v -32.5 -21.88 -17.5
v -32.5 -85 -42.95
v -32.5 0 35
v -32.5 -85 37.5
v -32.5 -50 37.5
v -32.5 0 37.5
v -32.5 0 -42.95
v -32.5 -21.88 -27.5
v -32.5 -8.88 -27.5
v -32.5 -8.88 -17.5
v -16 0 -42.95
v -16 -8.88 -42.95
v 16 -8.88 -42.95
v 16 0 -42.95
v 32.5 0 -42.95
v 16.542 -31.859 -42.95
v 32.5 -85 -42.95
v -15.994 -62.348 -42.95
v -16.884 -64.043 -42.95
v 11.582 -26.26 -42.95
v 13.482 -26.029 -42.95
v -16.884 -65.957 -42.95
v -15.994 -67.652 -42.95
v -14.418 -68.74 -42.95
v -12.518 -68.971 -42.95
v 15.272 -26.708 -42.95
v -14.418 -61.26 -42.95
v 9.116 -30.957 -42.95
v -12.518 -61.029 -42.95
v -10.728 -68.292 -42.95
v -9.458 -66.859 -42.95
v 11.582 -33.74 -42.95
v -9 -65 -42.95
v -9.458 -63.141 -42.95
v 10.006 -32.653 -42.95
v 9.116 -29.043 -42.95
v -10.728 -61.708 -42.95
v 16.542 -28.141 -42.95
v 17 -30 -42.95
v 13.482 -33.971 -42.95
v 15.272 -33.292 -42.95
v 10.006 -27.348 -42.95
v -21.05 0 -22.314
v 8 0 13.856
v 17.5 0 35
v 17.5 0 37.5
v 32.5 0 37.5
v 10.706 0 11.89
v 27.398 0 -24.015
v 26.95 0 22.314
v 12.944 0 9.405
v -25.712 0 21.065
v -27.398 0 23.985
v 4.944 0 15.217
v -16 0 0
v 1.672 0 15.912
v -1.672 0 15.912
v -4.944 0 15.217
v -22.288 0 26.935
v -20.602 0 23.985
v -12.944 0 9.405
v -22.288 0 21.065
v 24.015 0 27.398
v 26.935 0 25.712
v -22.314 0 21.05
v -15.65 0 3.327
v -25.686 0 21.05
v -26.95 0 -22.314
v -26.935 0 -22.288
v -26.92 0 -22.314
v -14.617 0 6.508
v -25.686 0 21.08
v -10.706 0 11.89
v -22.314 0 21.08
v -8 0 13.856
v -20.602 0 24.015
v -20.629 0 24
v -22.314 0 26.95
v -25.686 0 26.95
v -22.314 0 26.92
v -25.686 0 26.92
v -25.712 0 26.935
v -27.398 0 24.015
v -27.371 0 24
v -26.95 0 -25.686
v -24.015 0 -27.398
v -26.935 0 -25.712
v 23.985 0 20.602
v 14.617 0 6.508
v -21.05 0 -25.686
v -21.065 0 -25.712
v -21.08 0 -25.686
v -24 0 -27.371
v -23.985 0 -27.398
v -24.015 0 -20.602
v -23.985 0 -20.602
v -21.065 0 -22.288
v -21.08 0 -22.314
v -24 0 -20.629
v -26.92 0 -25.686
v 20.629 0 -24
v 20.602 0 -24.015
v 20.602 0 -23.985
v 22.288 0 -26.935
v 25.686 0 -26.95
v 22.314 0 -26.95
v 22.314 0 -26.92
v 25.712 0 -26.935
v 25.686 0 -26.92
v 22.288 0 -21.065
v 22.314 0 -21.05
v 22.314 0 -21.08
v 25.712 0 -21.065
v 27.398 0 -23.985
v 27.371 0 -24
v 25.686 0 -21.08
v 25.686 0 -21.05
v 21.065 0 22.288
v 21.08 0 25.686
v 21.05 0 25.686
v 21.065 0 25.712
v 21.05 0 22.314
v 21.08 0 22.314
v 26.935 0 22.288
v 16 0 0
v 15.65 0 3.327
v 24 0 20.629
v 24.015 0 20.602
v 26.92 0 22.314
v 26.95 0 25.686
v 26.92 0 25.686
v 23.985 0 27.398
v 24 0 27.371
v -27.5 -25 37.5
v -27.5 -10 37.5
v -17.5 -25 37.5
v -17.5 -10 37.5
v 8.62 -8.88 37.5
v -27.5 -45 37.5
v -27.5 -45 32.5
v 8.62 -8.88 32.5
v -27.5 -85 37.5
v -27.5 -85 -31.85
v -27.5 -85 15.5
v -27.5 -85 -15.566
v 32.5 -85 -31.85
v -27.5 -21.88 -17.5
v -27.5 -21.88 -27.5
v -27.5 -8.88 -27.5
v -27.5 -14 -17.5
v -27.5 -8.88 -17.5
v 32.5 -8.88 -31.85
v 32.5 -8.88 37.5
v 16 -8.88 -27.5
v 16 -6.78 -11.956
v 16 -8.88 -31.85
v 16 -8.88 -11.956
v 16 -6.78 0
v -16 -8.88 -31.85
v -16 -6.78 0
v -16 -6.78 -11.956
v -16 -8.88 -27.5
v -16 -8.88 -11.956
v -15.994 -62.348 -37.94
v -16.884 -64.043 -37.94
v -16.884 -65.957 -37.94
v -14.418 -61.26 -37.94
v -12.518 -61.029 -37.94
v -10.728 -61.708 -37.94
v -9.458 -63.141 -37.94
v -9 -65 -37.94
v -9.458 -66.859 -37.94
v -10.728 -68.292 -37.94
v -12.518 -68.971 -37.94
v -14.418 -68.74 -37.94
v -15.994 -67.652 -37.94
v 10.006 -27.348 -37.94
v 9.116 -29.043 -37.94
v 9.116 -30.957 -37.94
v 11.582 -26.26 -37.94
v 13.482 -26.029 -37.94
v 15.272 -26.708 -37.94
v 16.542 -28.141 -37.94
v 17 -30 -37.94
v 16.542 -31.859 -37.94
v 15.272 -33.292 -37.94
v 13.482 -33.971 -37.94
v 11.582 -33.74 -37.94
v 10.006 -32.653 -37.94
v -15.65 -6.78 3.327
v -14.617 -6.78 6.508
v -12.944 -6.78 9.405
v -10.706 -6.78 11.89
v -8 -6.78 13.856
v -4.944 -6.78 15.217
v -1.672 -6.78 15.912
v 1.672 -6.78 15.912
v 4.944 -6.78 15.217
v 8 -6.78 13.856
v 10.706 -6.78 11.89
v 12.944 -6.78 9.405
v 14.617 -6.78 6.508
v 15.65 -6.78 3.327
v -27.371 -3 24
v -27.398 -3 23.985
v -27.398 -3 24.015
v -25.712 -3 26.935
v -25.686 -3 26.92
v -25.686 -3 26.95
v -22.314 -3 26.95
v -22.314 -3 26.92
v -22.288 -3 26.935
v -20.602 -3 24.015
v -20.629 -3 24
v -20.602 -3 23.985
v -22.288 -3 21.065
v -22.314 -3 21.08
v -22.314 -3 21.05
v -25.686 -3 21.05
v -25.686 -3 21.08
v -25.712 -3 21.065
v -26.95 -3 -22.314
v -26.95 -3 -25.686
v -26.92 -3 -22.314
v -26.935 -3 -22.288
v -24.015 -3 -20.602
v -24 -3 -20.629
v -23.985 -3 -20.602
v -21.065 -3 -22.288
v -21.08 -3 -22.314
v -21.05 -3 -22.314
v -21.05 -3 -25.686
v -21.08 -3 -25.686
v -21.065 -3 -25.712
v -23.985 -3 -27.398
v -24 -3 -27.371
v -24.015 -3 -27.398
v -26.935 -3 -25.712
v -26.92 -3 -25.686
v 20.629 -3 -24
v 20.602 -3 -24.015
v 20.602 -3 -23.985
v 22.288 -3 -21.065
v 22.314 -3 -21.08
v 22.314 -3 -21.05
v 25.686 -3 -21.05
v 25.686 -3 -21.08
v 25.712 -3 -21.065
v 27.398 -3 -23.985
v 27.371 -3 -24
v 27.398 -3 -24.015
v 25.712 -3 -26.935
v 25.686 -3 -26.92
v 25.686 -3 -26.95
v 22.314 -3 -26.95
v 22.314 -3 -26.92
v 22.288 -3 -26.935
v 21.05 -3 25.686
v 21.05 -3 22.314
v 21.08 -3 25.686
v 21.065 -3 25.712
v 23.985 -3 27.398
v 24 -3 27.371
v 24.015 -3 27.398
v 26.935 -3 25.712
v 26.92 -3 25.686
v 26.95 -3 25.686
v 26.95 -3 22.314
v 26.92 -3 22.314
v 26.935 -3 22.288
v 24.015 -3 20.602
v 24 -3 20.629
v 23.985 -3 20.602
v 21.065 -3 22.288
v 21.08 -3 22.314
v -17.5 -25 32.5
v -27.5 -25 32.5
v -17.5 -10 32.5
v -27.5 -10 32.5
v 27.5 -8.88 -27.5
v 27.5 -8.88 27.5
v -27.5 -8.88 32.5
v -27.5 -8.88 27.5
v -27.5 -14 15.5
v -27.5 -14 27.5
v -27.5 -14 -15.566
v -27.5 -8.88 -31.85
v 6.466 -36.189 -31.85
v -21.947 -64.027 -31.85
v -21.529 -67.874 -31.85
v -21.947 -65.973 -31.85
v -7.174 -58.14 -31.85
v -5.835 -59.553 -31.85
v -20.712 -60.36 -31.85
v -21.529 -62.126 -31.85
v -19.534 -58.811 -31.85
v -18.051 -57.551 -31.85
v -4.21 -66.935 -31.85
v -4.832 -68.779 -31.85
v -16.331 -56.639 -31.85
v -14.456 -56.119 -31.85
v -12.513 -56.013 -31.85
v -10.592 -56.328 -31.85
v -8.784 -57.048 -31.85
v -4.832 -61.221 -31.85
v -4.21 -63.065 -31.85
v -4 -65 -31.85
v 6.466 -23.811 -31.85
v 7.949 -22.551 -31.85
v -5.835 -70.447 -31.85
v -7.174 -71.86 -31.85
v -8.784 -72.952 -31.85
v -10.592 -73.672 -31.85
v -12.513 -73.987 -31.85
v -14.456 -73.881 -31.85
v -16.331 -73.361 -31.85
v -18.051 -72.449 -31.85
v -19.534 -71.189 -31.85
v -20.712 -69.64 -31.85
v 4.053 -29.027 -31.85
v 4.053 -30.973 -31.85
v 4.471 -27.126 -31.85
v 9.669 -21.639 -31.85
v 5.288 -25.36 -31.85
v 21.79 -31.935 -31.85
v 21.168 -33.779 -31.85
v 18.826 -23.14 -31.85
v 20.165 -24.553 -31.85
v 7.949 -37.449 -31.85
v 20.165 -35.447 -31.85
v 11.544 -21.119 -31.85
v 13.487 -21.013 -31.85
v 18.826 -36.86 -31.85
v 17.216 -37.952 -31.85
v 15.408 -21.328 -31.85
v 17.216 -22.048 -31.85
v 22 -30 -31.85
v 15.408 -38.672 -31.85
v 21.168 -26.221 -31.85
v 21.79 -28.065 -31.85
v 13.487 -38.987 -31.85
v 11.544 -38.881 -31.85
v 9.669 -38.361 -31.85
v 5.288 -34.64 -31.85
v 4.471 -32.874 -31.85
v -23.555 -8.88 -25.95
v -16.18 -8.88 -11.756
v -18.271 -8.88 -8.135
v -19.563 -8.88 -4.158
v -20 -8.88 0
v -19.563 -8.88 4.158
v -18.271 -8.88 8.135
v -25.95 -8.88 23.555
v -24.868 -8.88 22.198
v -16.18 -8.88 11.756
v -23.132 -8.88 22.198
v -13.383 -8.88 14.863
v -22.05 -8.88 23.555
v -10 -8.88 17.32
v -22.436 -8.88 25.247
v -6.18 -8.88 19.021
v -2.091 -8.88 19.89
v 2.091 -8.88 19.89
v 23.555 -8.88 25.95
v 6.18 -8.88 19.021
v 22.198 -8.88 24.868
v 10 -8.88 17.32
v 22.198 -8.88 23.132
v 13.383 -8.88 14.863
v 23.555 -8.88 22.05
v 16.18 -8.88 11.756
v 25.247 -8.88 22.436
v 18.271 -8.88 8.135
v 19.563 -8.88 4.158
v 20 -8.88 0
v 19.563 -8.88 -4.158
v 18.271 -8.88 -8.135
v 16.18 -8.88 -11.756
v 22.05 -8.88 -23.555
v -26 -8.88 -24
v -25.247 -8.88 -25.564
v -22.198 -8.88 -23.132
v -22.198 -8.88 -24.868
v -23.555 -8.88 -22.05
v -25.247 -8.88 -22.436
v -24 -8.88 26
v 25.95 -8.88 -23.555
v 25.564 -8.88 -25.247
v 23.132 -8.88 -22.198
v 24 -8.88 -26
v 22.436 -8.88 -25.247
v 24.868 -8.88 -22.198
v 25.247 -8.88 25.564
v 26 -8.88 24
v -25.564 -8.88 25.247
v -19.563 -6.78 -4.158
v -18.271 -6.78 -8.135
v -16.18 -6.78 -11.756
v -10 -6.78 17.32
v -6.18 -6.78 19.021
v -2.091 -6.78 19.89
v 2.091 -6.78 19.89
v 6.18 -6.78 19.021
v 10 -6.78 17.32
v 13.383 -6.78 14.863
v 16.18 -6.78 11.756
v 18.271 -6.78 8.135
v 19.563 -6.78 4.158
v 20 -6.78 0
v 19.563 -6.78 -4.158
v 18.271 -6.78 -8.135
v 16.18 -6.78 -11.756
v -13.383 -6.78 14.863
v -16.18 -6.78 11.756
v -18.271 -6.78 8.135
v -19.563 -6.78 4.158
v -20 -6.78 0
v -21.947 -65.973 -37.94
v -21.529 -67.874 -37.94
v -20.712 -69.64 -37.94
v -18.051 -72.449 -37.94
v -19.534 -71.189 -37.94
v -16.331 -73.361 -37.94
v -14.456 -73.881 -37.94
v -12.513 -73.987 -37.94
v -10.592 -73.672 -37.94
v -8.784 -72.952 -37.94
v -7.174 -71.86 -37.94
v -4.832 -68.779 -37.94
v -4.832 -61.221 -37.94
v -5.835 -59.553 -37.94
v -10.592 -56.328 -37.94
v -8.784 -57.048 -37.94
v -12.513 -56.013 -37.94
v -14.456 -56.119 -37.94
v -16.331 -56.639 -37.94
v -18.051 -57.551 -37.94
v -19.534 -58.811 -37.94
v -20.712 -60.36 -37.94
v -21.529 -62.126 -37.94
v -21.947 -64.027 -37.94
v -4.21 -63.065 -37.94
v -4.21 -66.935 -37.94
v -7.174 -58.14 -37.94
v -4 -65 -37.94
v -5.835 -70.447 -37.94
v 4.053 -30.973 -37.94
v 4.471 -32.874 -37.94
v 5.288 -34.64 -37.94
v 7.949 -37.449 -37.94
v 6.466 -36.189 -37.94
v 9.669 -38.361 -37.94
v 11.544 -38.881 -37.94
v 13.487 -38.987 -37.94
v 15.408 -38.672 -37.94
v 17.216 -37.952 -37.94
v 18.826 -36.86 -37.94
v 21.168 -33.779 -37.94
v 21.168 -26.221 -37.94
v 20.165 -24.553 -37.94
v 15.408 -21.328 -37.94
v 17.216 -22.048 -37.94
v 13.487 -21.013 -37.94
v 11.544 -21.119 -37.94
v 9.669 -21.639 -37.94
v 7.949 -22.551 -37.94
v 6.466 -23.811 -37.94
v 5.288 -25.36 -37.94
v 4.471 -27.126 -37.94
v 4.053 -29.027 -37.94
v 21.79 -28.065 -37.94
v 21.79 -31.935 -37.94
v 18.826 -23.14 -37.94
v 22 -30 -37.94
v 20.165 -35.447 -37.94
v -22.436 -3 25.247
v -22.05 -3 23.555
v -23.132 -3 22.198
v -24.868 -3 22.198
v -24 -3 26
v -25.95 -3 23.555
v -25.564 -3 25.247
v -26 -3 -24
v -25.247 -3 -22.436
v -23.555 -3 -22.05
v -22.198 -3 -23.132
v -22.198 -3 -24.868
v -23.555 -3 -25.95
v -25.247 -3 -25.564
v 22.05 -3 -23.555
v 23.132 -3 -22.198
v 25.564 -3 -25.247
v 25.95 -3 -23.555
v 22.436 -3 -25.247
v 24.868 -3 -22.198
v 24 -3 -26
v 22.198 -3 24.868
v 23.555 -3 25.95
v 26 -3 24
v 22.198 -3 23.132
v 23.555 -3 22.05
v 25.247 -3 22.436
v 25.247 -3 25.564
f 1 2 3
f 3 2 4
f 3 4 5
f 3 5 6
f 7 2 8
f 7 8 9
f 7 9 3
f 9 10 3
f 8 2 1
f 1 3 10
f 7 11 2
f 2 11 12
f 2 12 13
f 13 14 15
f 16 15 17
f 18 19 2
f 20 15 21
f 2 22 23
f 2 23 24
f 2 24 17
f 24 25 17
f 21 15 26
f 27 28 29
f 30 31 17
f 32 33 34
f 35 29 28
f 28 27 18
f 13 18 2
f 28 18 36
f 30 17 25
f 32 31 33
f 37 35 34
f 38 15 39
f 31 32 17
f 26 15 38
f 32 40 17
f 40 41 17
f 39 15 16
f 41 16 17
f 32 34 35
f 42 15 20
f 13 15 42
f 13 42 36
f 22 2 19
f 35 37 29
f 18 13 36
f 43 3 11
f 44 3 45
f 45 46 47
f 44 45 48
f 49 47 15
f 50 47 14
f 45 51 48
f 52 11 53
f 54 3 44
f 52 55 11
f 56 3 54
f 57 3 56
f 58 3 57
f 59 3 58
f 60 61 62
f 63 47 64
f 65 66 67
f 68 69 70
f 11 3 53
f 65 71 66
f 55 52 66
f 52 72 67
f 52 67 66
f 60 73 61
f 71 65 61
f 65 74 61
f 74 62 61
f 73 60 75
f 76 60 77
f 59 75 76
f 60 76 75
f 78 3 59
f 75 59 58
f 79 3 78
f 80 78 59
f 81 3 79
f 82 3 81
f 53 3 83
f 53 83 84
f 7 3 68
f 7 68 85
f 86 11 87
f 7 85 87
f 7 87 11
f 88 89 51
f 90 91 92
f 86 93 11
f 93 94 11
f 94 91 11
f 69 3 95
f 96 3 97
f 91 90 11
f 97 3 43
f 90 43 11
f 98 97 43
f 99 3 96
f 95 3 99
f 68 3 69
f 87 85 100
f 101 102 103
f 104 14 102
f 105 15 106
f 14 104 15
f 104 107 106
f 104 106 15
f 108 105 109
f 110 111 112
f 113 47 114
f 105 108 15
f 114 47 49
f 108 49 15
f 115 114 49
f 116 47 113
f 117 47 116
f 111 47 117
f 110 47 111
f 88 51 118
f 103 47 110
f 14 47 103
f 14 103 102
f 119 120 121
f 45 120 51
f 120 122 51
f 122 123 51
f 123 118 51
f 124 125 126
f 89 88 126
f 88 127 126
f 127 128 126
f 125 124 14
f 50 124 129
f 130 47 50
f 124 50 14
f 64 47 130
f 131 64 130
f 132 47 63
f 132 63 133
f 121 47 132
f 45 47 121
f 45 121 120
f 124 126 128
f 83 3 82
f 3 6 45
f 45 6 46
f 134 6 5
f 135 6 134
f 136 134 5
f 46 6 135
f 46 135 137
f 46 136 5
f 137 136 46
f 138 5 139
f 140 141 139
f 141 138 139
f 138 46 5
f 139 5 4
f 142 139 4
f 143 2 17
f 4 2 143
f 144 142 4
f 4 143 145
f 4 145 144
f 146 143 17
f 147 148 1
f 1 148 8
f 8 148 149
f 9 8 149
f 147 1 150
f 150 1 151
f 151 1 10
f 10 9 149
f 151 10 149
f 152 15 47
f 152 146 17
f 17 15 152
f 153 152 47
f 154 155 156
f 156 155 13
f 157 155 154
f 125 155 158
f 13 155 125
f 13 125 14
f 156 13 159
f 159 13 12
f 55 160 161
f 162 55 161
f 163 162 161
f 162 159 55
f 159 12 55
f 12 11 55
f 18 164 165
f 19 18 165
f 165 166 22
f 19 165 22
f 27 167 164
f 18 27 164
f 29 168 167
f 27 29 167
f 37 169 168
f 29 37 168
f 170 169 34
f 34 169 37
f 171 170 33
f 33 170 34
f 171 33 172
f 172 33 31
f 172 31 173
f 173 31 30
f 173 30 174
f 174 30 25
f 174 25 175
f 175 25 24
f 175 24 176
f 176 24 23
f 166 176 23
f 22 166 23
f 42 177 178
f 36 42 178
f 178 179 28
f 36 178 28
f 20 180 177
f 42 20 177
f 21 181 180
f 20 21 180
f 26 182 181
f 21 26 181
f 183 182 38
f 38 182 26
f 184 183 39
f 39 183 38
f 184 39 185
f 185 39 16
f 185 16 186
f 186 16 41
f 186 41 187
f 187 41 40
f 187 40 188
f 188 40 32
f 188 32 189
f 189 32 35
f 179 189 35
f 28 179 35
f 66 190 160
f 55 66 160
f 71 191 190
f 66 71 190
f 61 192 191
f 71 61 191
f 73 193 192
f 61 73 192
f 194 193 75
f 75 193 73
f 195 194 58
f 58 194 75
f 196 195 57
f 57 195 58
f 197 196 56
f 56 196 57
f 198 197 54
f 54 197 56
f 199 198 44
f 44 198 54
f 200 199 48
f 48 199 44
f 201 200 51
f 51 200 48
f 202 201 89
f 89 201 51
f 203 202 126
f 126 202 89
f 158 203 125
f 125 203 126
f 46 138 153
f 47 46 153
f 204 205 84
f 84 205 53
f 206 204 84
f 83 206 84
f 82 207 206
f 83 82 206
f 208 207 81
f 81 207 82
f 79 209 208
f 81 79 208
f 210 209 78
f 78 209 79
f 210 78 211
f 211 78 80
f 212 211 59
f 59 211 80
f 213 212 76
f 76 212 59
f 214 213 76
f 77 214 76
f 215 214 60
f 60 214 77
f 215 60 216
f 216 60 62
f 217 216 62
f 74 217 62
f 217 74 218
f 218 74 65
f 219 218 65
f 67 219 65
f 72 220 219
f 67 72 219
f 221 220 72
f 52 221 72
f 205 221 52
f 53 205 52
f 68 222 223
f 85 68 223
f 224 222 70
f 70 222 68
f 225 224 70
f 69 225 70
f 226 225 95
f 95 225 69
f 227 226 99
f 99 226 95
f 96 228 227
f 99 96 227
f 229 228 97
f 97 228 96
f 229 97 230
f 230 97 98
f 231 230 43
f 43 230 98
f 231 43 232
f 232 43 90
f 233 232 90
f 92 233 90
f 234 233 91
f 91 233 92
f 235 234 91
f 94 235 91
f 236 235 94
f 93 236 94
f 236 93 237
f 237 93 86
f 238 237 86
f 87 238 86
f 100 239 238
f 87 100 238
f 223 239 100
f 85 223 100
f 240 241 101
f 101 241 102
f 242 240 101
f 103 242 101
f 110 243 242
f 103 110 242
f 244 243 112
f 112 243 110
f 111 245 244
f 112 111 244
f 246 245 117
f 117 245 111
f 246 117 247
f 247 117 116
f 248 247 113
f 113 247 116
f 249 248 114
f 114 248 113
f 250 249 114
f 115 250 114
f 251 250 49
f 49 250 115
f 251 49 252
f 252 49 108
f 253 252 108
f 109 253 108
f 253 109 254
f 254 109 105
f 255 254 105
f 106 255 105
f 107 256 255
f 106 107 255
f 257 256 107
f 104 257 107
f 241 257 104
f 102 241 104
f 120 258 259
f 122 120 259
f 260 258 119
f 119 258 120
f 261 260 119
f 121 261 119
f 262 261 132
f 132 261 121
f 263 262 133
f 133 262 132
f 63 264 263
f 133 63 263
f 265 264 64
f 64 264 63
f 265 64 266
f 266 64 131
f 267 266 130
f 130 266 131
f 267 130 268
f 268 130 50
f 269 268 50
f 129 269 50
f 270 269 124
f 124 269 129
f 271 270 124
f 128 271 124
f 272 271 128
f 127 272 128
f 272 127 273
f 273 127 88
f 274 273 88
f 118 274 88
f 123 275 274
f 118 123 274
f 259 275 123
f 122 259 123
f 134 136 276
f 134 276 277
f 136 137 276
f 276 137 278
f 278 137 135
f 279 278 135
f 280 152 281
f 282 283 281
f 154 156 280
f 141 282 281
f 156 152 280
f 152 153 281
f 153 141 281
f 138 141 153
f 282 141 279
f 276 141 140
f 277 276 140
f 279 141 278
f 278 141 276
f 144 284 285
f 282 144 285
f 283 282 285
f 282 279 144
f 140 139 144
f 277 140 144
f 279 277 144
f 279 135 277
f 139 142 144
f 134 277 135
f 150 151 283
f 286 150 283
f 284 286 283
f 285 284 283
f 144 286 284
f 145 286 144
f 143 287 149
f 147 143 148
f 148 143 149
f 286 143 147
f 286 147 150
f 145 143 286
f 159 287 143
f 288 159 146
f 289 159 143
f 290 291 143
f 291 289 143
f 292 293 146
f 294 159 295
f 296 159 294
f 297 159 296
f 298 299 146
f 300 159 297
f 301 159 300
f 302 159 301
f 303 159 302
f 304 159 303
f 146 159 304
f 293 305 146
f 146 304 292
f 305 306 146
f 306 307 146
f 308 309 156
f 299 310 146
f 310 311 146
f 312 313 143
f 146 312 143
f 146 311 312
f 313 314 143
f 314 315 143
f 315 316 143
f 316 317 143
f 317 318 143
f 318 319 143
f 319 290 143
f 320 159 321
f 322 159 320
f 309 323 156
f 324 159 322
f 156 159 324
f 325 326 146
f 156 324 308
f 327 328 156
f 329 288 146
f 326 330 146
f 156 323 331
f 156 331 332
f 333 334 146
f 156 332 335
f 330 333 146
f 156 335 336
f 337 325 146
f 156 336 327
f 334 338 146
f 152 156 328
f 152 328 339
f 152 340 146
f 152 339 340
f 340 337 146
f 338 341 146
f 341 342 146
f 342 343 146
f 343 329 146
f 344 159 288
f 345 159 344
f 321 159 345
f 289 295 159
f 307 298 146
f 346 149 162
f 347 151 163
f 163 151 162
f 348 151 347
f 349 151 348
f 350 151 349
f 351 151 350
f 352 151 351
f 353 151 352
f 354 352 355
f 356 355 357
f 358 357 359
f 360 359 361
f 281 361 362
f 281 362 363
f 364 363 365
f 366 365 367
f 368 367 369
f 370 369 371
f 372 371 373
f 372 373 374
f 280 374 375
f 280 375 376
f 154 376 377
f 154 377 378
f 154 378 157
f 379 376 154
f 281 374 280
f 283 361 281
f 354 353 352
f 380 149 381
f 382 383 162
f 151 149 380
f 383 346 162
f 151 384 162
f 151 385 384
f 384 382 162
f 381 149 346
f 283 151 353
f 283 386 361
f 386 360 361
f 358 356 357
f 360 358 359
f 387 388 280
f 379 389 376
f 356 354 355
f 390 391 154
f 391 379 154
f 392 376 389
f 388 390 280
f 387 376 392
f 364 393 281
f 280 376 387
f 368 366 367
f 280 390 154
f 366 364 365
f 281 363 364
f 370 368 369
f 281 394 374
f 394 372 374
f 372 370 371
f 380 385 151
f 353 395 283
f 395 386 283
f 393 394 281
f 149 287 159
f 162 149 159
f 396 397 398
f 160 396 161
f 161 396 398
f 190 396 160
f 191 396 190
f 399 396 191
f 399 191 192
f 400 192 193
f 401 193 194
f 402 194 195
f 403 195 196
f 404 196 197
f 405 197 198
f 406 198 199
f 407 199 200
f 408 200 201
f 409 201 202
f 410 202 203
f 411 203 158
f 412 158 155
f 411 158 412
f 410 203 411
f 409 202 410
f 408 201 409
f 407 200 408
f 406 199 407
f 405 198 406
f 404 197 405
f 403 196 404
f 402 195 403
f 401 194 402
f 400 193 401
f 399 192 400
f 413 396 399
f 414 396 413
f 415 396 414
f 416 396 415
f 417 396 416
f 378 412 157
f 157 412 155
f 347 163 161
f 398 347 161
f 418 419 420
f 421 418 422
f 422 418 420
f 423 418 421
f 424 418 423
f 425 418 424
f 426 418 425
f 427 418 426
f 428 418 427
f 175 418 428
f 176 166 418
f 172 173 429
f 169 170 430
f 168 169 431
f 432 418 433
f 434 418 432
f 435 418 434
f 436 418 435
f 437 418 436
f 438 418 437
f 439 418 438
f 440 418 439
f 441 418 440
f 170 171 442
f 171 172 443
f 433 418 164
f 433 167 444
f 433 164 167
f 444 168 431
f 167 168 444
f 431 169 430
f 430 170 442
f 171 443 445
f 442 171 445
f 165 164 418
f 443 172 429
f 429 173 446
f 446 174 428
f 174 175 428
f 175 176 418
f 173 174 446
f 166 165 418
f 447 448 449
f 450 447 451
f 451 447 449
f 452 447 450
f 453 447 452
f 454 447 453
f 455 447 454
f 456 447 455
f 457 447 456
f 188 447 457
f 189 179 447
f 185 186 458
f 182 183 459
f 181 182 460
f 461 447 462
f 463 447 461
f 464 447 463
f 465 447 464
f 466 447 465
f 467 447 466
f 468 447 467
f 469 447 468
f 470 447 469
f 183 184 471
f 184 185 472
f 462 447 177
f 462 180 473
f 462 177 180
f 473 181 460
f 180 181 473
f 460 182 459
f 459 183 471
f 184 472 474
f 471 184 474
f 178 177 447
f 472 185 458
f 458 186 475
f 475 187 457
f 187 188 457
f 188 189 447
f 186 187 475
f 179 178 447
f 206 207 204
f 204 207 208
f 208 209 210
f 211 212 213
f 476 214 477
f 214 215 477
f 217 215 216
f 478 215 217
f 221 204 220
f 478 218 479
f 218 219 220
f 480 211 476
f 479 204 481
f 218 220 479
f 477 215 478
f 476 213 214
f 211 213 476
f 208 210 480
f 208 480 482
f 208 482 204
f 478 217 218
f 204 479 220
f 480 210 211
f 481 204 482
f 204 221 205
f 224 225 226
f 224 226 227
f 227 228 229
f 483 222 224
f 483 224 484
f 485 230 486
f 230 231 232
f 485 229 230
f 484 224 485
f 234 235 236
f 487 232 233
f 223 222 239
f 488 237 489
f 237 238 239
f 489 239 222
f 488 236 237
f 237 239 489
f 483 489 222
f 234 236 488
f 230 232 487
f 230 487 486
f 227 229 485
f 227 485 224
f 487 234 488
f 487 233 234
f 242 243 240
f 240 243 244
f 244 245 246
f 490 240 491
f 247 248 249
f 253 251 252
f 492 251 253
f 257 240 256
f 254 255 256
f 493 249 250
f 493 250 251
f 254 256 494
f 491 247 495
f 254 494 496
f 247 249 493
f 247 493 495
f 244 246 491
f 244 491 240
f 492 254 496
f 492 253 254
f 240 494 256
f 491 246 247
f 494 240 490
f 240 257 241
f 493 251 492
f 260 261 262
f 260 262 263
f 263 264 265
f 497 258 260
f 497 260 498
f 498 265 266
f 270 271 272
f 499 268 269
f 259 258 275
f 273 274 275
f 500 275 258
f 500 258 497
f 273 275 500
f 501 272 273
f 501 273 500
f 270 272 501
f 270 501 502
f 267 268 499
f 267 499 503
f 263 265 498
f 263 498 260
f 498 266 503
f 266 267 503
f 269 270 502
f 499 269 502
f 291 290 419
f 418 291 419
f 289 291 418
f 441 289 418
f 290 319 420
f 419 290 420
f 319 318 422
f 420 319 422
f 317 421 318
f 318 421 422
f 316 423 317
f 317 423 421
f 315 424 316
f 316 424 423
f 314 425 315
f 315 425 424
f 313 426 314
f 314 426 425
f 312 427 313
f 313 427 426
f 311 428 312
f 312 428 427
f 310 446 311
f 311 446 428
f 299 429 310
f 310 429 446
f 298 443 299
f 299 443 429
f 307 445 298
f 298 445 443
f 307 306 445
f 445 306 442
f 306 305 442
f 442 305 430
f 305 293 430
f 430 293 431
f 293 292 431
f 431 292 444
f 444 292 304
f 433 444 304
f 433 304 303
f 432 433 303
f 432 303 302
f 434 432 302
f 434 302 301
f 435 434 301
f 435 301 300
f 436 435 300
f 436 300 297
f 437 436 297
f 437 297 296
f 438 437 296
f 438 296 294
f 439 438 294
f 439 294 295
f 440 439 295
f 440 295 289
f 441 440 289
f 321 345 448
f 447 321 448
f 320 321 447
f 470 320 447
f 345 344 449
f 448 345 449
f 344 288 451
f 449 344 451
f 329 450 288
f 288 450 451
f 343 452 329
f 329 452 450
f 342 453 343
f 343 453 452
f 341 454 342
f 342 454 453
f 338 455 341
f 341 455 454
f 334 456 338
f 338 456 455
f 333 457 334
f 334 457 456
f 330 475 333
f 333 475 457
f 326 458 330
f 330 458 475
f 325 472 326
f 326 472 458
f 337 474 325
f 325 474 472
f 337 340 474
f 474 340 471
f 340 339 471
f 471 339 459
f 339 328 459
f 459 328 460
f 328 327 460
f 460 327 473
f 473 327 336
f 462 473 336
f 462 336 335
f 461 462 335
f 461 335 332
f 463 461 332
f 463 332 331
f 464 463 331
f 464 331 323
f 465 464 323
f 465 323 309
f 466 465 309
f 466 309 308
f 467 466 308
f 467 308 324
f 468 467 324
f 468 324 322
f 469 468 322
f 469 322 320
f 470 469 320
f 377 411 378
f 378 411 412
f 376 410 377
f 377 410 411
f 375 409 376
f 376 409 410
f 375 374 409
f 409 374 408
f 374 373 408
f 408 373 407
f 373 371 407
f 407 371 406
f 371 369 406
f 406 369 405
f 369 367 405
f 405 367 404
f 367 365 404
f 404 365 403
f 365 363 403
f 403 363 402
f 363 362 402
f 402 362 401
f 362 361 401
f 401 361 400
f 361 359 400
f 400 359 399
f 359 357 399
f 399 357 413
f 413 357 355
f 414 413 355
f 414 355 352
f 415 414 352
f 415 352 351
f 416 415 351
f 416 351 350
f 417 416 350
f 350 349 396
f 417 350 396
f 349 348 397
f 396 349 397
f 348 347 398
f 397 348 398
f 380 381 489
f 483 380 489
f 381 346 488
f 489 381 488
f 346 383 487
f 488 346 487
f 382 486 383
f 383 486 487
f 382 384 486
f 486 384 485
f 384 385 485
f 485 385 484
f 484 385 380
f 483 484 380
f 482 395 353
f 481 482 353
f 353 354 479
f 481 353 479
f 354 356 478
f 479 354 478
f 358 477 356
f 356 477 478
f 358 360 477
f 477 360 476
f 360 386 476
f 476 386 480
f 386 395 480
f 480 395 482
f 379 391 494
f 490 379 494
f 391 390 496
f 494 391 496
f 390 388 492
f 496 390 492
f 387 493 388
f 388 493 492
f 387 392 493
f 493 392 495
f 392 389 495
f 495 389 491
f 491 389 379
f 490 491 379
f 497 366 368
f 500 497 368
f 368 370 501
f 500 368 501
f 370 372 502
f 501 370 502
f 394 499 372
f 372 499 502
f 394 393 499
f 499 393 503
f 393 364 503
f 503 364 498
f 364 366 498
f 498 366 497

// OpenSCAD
hole_spacing = 48;
face_dim = 55;
stepper_face = 5.12;
length = 80;
stepper_circle_h = 2.1;
stepper_cicrle_r = 20;
m3_length = 14;
m3_available_length = m3_length - stepper_face;

critical_dim = 5;
critical_face = face_dim + 2 * critical_dim;
m3_nut_flats = 5.9;	// normal M3 hex nut exact width = 5.5
m3_nut_depth = 3;	// normal M3 hex nut exact depth = 2.4, nyloc = 4
m3_head_h = 2;
m3_head_r = 2.65;

module stepper(){

	difference(){
		translate([face_dim * -0.5, face_dim * -0.5, 0])cube([face_dim, face_dim, length]);
		for(i = [0:90:360]){
			rotate([0,0,i]){
				translate([face_dim * 0.5 , face_dim * 0.5, stepper_face]){
					cylinder(r=12, h = length);
				}
			}
		}
		motor_bolt_holes();
	}
	translate([0,0,-25])cylinder(r=4, h=25);
	translate([0,0,-1 * stepper_circle_h])cylinder(h=stepper_circle_h, r=stepper_cicrle_r);
}

module motor_bolt_holes(){
	for(i = [0:90:360]){
		rotate([0,0,i]){
			translate([hole_spacing * 0.5 , hole_spacing * 0.5,-2]){
				cylinder(r=2, h = 15);
			}
		}
	}
}

module motor_bolts(){
	color([0,0,1])
	for(i = [0:90:360]){
		rotate([0,0,i]){
			translate([hole_spacing * 0.5 , hole_spacing * 0.5,0]){
				//translate([0,0,m3_length])cylinder(r = m3_head_r, h = m3_head_h);
				//cylinder(r=1.8, h = m3_length);
				translate([0,0,0.5 * m3_nut_depth])hexagon(m3_nut_flats, m3_nut_depth);
			}
		}
	}
}


module cable_space(){
	hull(){
		translate([0,0,-20])cylinder(r=16, h=20);
		translate([0,-60,-20])cylinder(r=16, h=20);
	}
}

module mounting_bolt(){
	bolt_r = 4;
	bolt_head_r = 9;
	bolt_head_h = 6.1;
	rotate([90,0,0]){
		cylinder(r1 = bolt_head_r, r2 = bolt_head_r, h = bolt_head_h);
		cylinder(r1 = bolt_r, r2 = bolt_r, h = 20);
	}
}

module mount(){
	bolt_head_h = 6.1;
	base_thickness = bolt_head_h + critical_dim;
	
	union(){
		translate([critical_face * -0.5, critical_face * -0.5, 0])cube([critical_face, critical_face + critical_dim, m3_available_length]);
		translate([-0.5 * critical_face, -0.5 * critical_face,0])difference(){
			cube([critical_dim, critical_face + critical_dim, length + critical_dim]);
			translate([-1,critical_dim,m3_available_length])cube([10,10,13]);
		}
		translate([-0.5 * critical_face, 0.5 * critical_face + 0.5 * critical_dim,0]){
			difference(){
				rotate([90,0,0])triangle(50,50,critical_dim);
				translate([critical_dim,-8,2 * critical_dim])cube([10,20,15]);
			}
		}
		
		translate([-0.5 * critical_face, -0.49 * critical_face - base_thickness, 0]){
			difference(){
				cube([critical_face , base_thickness , length + critical_dim]);
				translate([critical_face * 0.7,base_thickness + 0.01,30])mounting_bolt();
				translate([critical_face * 0.3,base_thickness + 0.01,length -15])mounting_bolt();
			}
		}
	}
	
	
}

module triangle(h,b,w){
	linear_extrude(height = w, center = true, convexity = 10, twist = 0)
	polygon(points=[[0,0],[h,0],[0,b]], paths=[[0,1,2]]);
}

module hexagon(size, height) {
	boxWidth = size/1.75;
	rotate([0,0,90])
	for (r = [-60, 0, 60]) rotate([0,0,r]) cube([boxWidth, size, height], true);
}

rotate([90,0,0])
{
	union(){
		//color([0.5,0.5,0.5])translate([0,0,m3_available_length])stepper();
		//color([0,0,1])motor_bolts();
		difference(){
			mount();
			translate([0,0, m3_available_length])cable_space();
			motor_bolt_holes();
			motor_bolts();
			translate([0,0, m3_available_length])stepper();
		}
	}
}
